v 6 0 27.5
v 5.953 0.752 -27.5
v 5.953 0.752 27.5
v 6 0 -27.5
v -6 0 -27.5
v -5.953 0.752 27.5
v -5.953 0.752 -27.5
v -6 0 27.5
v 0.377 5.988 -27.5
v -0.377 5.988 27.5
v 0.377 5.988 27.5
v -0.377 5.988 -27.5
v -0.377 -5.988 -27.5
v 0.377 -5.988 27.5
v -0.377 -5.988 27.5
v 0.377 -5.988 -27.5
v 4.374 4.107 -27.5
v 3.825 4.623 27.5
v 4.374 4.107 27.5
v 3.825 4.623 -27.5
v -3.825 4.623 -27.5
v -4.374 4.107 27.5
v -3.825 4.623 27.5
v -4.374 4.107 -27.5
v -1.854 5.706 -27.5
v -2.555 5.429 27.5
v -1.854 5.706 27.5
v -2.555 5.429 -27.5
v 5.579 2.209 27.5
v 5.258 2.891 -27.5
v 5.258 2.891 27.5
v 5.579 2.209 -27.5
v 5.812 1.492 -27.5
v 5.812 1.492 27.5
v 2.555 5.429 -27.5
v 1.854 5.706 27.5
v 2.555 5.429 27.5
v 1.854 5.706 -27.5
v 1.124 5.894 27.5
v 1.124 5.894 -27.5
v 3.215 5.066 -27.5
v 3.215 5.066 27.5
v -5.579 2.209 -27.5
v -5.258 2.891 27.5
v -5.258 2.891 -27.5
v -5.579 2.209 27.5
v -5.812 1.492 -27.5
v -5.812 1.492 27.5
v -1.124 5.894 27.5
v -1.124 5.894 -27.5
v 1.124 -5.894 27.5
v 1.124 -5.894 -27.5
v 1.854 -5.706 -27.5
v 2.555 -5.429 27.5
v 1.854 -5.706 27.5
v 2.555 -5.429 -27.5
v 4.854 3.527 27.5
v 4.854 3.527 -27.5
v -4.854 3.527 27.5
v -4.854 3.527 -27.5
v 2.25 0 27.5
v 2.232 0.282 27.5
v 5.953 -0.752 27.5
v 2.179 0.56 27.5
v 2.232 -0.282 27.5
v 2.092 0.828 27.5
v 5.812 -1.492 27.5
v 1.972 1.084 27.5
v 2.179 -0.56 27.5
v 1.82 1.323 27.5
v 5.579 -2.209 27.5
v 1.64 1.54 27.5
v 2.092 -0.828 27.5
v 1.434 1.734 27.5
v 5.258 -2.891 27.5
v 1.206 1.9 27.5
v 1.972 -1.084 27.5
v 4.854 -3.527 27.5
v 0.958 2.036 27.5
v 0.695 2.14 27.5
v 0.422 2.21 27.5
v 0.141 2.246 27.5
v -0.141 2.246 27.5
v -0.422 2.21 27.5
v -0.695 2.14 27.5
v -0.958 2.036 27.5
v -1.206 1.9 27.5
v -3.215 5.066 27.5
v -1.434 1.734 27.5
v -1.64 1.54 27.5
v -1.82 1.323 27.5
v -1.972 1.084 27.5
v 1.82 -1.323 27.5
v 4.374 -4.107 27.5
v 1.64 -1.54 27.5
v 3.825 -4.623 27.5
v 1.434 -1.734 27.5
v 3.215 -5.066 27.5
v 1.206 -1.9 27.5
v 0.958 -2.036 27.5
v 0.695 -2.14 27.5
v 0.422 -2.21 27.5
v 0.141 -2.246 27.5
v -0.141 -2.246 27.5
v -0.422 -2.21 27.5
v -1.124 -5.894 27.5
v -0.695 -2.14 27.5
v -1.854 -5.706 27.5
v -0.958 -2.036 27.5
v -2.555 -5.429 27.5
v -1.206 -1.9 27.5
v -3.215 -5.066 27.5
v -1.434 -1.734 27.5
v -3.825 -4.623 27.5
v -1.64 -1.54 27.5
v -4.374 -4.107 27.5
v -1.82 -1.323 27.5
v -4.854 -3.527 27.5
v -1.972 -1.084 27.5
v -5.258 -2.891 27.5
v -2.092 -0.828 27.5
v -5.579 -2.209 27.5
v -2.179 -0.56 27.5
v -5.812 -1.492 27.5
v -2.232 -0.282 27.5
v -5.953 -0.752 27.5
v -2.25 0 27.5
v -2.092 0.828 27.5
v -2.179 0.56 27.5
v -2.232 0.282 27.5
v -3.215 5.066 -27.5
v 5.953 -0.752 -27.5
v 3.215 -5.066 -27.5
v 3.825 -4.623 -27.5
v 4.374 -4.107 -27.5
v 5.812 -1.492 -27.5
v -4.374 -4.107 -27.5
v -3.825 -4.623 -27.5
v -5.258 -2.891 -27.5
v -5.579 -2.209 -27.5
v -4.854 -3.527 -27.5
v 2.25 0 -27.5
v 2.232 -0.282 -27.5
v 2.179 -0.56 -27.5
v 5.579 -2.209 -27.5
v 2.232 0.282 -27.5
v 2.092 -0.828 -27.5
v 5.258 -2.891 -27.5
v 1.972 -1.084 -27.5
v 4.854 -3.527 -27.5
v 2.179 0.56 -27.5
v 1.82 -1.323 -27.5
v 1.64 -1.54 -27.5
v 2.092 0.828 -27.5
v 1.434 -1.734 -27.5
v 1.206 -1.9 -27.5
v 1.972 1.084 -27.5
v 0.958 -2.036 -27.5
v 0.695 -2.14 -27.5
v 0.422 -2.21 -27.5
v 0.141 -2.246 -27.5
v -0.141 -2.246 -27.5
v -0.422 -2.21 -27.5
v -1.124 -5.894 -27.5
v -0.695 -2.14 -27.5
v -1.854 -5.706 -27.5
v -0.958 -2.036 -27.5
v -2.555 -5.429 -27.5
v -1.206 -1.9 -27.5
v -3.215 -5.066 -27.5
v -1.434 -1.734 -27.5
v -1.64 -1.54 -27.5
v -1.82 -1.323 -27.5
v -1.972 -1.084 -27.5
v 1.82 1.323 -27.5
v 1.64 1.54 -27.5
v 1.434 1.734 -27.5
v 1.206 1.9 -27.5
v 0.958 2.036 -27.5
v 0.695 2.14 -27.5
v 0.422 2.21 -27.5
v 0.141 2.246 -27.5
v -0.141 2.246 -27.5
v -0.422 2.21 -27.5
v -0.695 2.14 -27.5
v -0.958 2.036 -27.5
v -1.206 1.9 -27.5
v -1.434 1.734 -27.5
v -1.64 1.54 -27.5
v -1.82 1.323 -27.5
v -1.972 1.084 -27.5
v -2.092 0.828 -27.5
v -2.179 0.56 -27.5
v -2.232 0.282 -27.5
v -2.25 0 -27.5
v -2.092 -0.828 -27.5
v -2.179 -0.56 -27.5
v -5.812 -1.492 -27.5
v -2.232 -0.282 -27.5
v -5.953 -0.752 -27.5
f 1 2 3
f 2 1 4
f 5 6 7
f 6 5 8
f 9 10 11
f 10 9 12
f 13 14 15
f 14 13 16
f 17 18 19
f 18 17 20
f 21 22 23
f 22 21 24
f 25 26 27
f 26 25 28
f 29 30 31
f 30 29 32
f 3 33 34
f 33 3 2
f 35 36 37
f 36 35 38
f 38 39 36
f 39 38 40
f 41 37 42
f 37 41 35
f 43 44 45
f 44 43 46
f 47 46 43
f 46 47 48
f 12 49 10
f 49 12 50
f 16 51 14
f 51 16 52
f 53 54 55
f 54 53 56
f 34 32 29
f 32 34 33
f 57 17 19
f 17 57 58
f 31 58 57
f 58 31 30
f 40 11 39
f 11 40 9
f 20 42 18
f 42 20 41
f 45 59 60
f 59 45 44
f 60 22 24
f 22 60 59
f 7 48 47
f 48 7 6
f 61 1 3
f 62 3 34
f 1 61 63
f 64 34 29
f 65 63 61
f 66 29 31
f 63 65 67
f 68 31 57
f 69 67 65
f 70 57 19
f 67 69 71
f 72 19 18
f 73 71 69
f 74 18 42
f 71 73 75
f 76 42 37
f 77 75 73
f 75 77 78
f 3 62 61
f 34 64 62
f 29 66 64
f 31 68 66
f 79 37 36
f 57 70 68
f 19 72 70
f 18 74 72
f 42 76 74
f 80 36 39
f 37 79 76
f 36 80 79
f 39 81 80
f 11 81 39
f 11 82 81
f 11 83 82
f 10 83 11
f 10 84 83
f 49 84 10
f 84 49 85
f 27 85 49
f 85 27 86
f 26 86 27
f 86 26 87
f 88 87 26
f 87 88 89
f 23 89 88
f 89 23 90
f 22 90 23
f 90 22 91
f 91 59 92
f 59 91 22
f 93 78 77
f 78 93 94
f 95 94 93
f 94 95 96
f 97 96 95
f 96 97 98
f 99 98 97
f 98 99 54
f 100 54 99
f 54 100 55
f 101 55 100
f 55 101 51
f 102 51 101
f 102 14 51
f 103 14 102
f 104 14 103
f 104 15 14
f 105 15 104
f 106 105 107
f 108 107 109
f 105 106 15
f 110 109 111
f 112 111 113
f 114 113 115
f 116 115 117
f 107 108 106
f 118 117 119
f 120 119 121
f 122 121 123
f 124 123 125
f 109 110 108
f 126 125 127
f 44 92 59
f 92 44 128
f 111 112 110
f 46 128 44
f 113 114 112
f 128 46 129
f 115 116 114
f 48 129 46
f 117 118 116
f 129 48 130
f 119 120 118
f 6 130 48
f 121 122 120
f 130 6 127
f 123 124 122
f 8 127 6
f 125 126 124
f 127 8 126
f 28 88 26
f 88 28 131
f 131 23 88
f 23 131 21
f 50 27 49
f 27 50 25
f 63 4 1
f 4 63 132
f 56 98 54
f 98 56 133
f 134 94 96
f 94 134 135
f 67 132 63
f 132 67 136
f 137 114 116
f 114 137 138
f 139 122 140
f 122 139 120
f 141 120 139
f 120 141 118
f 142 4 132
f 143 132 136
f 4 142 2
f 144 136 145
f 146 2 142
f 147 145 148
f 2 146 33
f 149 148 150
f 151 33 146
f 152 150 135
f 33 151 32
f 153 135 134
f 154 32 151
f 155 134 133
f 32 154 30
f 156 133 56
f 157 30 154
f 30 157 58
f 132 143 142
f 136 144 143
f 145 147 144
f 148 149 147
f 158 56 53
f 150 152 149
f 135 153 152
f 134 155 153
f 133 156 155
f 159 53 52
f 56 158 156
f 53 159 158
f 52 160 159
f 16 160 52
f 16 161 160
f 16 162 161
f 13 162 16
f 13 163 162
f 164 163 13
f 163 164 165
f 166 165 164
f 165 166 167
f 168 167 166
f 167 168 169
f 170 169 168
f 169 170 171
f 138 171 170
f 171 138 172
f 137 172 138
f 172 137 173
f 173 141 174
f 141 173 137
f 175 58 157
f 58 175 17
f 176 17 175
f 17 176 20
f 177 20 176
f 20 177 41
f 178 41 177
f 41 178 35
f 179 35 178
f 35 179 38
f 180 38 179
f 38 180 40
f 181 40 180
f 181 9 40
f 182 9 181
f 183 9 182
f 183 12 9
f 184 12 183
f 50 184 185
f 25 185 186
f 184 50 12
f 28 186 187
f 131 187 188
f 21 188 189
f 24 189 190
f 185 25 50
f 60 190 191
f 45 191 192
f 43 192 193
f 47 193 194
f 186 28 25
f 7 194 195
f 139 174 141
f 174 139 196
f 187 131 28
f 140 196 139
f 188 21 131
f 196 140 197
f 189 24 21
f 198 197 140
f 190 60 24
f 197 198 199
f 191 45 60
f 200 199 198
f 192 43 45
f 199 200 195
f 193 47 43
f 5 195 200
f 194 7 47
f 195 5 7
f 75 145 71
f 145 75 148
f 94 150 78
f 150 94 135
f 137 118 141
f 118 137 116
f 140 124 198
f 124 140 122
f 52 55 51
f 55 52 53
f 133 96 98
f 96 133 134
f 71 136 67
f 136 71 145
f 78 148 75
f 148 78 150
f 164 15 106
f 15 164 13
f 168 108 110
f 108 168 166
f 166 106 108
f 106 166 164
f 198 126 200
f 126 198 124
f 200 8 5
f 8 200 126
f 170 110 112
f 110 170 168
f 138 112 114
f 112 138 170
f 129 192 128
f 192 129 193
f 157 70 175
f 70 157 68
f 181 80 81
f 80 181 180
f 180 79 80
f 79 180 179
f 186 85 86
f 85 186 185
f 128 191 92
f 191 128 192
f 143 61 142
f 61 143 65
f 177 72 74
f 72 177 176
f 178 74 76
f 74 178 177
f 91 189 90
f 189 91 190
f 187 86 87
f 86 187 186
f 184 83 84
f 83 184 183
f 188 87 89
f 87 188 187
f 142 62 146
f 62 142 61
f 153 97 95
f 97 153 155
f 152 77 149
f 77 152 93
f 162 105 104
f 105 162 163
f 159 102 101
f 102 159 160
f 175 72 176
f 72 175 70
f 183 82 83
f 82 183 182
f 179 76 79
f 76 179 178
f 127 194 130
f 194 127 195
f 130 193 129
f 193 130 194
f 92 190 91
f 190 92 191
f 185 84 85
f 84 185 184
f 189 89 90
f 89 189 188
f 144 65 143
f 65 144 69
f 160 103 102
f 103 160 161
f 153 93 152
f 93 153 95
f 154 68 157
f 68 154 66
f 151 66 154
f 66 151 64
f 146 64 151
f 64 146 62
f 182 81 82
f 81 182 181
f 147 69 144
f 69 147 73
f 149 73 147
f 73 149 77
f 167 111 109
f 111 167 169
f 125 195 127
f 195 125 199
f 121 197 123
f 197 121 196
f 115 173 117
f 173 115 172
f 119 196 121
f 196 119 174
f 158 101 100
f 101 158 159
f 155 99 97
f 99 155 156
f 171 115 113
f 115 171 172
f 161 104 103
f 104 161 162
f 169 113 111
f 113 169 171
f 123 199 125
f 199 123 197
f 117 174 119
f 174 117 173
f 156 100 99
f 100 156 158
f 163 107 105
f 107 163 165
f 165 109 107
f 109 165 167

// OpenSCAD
$fn = 50;


difference() {
	union() {
		translate(v = [0, 0, -27.5000000000]) {
			cylinder(h = 55, r = 6.0000000000);
		}
	}
	union() {
		translate(v = [0, 0, -100.0000000000]) {
			cylinder(h = 200, r = 2.2500000000);
		}
	}
}
